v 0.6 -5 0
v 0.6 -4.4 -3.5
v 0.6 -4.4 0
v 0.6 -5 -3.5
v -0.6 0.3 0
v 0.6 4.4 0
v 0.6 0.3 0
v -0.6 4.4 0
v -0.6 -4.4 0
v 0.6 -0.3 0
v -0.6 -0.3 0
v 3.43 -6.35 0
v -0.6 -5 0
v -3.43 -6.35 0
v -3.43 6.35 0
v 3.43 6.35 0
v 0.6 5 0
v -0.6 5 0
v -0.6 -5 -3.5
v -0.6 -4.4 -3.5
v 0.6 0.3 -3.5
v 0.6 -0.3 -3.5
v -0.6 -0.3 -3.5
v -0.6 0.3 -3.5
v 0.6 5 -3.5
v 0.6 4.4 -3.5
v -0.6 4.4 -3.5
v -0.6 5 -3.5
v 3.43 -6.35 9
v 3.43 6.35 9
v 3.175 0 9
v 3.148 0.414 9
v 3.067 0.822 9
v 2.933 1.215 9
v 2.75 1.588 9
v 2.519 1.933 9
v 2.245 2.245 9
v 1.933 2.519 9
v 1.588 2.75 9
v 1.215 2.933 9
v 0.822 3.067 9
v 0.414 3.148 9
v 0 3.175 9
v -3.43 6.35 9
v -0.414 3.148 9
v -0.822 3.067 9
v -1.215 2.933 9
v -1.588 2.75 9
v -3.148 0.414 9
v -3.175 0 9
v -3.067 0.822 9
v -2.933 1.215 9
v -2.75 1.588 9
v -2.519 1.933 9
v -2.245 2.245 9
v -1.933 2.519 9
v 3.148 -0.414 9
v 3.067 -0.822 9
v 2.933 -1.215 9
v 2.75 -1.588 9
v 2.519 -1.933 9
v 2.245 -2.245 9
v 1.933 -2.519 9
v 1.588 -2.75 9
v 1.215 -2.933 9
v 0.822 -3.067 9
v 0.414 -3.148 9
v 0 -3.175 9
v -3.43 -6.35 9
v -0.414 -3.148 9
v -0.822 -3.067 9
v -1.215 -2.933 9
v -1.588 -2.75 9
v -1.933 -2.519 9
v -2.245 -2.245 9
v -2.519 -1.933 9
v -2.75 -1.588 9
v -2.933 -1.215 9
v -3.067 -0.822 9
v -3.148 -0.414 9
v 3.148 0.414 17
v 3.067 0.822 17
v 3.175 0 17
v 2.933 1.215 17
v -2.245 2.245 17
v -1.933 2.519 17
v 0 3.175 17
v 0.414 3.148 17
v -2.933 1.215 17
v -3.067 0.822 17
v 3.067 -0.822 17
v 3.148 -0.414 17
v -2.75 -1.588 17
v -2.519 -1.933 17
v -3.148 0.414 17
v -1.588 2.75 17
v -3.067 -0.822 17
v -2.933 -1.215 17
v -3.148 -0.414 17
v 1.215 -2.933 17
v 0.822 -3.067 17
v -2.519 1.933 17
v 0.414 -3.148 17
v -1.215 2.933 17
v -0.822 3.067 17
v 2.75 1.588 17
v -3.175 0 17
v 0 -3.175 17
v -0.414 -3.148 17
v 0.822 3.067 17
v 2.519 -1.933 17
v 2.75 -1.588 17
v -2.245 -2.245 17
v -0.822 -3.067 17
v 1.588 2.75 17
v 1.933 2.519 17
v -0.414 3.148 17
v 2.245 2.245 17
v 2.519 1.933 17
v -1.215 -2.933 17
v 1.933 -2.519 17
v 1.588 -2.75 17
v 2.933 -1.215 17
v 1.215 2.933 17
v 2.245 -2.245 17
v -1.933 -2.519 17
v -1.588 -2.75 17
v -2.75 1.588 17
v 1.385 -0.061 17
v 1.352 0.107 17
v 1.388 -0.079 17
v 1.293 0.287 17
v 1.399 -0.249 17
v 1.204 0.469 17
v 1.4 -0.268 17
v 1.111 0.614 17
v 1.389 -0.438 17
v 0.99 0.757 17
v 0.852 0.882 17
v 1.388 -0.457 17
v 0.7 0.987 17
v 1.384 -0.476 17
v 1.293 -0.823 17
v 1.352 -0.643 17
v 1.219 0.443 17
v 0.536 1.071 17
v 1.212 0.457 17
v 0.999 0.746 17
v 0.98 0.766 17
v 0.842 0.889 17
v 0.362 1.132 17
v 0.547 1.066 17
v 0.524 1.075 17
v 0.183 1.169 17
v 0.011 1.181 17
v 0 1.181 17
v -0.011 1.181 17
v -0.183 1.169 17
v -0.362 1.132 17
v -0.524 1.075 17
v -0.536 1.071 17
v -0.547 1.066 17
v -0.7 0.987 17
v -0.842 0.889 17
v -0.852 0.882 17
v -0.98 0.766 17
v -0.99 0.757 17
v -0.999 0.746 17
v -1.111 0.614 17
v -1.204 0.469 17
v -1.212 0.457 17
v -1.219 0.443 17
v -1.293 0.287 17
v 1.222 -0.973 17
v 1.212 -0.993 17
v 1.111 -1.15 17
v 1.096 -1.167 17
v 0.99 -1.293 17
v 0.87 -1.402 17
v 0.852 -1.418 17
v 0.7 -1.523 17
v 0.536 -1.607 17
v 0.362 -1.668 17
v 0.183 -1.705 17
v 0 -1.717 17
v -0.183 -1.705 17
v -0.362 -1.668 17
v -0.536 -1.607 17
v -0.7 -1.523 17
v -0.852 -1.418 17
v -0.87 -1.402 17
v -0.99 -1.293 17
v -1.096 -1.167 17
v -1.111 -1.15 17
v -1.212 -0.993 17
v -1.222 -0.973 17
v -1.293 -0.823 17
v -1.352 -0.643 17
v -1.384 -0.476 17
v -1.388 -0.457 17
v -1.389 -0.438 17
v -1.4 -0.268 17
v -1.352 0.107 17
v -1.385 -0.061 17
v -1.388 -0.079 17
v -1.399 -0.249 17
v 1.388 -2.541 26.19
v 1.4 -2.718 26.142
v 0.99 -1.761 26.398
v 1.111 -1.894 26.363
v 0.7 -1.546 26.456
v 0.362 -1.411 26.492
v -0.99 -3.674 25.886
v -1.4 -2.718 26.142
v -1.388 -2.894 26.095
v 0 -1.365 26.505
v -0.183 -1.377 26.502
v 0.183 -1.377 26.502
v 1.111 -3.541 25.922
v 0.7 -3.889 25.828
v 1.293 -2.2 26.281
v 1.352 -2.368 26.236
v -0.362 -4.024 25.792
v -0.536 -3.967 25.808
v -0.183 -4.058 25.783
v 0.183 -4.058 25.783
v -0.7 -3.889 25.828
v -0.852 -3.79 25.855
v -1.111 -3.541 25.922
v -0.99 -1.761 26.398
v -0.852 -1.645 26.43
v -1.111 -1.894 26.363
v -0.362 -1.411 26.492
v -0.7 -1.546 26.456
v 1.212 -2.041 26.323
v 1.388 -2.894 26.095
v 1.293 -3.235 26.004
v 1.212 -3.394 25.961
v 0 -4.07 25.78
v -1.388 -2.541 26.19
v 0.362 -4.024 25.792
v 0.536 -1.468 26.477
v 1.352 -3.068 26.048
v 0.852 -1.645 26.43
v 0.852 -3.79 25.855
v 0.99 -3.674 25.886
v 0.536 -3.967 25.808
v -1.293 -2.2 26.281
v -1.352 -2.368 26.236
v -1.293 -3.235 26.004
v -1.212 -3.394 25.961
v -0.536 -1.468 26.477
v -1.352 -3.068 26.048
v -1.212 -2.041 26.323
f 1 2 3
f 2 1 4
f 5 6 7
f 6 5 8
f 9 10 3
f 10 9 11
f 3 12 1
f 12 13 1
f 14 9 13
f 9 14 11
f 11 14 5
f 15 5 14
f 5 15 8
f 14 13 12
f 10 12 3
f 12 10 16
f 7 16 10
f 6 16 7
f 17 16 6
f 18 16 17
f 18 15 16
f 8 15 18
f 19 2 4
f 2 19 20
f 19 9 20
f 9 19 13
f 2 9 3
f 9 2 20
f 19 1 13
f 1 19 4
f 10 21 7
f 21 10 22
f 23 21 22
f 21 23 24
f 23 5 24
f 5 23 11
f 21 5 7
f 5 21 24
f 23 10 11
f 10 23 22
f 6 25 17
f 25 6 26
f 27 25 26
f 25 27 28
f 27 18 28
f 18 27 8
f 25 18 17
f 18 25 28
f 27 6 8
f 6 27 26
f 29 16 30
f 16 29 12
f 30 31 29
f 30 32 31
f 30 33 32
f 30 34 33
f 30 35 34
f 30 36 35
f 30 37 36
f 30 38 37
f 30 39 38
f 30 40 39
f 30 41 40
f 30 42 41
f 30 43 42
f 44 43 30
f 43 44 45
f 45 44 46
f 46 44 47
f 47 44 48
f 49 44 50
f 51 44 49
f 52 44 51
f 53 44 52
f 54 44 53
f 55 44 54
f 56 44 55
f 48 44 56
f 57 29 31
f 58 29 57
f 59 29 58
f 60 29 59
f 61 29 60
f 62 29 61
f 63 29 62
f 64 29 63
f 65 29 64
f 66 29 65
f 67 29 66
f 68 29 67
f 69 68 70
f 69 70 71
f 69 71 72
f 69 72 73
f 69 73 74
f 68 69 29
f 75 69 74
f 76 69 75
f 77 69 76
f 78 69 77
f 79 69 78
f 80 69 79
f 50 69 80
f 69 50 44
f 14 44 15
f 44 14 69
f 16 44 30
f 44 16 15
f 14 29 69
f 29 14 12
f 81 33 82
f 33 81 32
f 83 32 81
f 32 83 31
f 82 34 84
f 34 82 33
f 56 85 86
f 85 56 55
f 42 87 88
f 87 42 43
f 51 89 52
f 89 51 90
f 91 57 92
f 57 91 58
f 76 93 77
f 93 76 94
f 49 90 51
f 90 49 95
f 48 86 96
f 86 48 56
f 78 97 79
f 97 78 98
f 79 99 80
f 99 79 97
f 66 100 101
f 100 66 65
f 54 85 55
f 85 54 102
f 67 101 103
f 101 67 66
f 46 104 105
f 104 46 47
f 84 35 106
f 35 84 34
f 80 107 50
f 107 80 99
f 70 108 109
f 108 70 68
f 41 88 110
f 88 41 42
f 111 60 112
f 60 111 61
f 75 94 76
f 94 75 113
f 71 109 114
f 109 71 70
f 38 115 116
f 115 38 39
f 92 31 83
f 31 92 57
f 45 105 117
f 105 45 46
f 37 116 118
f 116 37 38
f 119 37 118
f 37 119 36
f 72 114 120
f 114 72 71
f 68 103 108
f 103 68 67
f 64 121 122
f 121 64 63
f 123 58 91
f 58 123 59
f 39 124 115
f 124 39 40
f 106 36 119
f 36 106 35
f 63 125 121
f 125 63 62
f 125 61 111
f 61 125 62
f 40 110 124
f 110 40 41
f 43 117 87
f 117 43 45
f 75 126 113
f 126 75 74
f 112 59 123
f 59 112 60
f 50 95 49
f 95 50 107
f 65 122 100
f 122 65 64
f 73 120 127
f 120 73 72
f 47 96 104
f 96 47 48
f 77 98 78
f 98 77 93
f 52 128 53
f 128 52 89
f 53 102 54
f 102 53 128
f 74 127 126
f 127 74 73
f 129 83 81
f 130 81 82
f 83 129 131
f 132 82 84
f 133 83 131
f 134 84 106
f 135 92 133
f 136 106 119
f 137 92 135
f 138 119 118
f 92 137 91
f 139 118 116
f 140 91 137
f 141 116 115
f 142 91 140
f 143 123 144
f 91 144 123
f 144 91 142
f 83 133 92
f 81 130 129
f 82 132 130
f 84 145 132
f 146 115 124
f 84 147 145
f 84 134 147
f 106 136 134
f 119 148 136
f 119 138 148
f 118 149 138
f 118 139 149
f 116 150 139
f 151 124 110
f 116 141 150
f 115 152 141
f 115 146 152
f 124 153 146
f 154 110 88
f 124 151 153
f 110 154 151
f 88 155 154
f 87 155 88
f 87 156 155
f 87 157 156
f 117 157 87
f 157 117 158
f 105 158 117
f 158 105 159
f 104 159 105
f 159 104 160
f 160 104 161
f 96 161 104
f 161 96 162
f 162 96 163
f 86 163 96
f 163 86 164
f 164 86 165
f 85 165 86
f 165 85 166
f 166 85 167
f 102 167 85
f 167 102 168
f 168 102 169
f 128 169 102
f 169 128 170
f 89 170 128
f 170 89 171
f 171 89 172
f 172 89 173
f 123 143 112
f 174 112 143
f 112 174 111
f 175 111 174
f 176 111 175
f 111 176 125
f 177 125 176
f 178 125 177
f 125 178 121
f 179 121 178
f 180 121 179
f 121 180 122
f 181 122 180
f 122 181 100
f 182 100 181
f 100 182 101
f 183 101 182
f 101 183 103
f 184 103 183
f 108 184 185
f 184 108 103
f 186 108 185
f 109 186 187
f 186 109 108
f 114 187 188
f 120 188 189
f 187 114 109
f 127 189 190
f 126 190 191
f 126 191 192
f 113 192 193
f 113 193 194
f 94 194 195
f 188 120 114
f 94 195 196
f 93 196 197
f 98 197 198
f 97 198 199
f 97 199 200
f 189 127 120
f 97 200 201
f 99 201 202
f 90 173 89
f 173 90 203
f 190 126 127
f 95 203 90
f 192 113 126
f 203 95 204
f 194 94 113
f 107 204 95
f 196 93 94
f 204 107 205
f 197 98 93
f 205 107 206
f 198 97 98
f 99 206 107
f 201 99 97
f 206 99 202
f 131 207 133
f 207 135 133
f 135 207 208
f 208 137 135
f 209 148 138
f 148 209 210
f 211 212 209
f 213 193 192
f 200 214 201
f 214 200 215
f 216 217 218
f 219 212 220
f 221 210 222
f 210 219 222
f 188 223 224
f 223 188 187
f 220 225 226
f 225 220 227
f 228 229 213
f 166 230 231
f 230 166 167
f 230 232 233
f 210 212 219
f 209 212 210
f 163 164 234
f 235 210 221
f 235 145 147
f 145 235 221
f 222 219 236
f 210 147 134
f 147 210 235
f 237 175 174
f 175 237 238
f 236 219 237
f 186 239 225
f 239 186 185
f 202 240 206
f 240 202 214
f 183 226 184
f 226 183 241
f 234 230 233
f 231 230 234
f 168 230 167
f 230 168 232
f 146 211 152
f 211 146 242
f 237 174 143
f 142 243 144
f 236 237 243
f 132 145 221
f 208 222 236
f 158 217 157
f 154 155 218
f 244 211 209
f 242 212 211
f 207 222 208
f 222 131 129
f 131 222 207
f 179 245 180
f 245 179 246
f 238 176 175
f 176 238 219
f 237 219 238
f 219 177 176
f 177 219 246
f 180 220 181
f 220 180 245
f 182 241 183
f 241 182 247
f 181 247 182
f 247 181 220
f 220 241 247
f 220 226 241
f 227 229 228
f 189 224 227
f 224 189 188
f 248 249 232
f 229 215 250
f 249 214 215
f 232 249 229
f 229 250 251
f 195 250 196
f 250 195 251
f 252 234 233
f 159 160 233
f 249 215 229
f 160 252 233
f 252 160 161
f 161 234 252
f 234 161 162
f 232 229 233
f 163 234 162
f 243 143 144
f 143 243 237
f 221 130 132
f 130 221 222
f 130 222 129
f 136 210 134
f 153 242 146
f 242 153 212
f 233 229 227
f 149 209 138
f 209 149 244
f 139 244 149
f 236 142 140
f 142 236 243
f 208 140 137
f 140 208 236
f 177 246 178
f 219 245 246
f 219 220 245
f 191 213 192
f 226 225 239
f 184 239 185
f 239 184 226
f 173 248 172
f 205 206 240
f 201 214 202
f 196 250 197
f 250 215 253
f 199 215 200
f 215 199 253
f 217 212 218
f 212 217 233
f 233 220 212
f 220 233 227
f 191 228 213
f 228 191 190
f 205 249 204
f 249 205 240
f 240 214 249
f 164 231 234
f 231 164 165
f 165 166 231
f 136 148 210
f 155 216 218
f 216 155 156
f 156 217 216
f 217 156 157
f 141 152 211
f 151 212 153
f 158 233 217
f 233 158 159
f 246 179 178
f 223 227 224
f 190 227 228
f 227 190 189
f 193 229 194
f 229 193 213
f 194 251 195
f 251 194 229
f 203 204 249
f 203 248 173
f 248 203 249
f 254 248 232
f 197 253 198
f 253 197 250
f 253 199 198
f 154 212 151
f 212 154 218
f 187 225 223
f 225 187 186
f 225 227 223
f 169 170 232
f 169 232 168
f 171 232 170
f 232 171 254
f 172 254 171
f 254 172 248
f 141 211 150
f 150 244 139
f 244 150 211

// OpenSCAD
// Nominal envelope illustration for Dailywell 1MS1T1B1M1QES-5.
// Not a production enclosure-clearance model. Lever shown in one position.
$fn=48;
union(){
 translate([-3.43,-6.35,0])cube([6.86,12.7,9]);
 translate([0,0,9])cylinder(d=6.35,h=8);
 translate([0,0,16])rotate([15,0,0])cylinder(d=2.8,h=10.5);
 for(y=[-4.7,0,4.7])translate([-0.6,y-0.3,-3.5])cube([1.2,0.6,3.5]);
}
